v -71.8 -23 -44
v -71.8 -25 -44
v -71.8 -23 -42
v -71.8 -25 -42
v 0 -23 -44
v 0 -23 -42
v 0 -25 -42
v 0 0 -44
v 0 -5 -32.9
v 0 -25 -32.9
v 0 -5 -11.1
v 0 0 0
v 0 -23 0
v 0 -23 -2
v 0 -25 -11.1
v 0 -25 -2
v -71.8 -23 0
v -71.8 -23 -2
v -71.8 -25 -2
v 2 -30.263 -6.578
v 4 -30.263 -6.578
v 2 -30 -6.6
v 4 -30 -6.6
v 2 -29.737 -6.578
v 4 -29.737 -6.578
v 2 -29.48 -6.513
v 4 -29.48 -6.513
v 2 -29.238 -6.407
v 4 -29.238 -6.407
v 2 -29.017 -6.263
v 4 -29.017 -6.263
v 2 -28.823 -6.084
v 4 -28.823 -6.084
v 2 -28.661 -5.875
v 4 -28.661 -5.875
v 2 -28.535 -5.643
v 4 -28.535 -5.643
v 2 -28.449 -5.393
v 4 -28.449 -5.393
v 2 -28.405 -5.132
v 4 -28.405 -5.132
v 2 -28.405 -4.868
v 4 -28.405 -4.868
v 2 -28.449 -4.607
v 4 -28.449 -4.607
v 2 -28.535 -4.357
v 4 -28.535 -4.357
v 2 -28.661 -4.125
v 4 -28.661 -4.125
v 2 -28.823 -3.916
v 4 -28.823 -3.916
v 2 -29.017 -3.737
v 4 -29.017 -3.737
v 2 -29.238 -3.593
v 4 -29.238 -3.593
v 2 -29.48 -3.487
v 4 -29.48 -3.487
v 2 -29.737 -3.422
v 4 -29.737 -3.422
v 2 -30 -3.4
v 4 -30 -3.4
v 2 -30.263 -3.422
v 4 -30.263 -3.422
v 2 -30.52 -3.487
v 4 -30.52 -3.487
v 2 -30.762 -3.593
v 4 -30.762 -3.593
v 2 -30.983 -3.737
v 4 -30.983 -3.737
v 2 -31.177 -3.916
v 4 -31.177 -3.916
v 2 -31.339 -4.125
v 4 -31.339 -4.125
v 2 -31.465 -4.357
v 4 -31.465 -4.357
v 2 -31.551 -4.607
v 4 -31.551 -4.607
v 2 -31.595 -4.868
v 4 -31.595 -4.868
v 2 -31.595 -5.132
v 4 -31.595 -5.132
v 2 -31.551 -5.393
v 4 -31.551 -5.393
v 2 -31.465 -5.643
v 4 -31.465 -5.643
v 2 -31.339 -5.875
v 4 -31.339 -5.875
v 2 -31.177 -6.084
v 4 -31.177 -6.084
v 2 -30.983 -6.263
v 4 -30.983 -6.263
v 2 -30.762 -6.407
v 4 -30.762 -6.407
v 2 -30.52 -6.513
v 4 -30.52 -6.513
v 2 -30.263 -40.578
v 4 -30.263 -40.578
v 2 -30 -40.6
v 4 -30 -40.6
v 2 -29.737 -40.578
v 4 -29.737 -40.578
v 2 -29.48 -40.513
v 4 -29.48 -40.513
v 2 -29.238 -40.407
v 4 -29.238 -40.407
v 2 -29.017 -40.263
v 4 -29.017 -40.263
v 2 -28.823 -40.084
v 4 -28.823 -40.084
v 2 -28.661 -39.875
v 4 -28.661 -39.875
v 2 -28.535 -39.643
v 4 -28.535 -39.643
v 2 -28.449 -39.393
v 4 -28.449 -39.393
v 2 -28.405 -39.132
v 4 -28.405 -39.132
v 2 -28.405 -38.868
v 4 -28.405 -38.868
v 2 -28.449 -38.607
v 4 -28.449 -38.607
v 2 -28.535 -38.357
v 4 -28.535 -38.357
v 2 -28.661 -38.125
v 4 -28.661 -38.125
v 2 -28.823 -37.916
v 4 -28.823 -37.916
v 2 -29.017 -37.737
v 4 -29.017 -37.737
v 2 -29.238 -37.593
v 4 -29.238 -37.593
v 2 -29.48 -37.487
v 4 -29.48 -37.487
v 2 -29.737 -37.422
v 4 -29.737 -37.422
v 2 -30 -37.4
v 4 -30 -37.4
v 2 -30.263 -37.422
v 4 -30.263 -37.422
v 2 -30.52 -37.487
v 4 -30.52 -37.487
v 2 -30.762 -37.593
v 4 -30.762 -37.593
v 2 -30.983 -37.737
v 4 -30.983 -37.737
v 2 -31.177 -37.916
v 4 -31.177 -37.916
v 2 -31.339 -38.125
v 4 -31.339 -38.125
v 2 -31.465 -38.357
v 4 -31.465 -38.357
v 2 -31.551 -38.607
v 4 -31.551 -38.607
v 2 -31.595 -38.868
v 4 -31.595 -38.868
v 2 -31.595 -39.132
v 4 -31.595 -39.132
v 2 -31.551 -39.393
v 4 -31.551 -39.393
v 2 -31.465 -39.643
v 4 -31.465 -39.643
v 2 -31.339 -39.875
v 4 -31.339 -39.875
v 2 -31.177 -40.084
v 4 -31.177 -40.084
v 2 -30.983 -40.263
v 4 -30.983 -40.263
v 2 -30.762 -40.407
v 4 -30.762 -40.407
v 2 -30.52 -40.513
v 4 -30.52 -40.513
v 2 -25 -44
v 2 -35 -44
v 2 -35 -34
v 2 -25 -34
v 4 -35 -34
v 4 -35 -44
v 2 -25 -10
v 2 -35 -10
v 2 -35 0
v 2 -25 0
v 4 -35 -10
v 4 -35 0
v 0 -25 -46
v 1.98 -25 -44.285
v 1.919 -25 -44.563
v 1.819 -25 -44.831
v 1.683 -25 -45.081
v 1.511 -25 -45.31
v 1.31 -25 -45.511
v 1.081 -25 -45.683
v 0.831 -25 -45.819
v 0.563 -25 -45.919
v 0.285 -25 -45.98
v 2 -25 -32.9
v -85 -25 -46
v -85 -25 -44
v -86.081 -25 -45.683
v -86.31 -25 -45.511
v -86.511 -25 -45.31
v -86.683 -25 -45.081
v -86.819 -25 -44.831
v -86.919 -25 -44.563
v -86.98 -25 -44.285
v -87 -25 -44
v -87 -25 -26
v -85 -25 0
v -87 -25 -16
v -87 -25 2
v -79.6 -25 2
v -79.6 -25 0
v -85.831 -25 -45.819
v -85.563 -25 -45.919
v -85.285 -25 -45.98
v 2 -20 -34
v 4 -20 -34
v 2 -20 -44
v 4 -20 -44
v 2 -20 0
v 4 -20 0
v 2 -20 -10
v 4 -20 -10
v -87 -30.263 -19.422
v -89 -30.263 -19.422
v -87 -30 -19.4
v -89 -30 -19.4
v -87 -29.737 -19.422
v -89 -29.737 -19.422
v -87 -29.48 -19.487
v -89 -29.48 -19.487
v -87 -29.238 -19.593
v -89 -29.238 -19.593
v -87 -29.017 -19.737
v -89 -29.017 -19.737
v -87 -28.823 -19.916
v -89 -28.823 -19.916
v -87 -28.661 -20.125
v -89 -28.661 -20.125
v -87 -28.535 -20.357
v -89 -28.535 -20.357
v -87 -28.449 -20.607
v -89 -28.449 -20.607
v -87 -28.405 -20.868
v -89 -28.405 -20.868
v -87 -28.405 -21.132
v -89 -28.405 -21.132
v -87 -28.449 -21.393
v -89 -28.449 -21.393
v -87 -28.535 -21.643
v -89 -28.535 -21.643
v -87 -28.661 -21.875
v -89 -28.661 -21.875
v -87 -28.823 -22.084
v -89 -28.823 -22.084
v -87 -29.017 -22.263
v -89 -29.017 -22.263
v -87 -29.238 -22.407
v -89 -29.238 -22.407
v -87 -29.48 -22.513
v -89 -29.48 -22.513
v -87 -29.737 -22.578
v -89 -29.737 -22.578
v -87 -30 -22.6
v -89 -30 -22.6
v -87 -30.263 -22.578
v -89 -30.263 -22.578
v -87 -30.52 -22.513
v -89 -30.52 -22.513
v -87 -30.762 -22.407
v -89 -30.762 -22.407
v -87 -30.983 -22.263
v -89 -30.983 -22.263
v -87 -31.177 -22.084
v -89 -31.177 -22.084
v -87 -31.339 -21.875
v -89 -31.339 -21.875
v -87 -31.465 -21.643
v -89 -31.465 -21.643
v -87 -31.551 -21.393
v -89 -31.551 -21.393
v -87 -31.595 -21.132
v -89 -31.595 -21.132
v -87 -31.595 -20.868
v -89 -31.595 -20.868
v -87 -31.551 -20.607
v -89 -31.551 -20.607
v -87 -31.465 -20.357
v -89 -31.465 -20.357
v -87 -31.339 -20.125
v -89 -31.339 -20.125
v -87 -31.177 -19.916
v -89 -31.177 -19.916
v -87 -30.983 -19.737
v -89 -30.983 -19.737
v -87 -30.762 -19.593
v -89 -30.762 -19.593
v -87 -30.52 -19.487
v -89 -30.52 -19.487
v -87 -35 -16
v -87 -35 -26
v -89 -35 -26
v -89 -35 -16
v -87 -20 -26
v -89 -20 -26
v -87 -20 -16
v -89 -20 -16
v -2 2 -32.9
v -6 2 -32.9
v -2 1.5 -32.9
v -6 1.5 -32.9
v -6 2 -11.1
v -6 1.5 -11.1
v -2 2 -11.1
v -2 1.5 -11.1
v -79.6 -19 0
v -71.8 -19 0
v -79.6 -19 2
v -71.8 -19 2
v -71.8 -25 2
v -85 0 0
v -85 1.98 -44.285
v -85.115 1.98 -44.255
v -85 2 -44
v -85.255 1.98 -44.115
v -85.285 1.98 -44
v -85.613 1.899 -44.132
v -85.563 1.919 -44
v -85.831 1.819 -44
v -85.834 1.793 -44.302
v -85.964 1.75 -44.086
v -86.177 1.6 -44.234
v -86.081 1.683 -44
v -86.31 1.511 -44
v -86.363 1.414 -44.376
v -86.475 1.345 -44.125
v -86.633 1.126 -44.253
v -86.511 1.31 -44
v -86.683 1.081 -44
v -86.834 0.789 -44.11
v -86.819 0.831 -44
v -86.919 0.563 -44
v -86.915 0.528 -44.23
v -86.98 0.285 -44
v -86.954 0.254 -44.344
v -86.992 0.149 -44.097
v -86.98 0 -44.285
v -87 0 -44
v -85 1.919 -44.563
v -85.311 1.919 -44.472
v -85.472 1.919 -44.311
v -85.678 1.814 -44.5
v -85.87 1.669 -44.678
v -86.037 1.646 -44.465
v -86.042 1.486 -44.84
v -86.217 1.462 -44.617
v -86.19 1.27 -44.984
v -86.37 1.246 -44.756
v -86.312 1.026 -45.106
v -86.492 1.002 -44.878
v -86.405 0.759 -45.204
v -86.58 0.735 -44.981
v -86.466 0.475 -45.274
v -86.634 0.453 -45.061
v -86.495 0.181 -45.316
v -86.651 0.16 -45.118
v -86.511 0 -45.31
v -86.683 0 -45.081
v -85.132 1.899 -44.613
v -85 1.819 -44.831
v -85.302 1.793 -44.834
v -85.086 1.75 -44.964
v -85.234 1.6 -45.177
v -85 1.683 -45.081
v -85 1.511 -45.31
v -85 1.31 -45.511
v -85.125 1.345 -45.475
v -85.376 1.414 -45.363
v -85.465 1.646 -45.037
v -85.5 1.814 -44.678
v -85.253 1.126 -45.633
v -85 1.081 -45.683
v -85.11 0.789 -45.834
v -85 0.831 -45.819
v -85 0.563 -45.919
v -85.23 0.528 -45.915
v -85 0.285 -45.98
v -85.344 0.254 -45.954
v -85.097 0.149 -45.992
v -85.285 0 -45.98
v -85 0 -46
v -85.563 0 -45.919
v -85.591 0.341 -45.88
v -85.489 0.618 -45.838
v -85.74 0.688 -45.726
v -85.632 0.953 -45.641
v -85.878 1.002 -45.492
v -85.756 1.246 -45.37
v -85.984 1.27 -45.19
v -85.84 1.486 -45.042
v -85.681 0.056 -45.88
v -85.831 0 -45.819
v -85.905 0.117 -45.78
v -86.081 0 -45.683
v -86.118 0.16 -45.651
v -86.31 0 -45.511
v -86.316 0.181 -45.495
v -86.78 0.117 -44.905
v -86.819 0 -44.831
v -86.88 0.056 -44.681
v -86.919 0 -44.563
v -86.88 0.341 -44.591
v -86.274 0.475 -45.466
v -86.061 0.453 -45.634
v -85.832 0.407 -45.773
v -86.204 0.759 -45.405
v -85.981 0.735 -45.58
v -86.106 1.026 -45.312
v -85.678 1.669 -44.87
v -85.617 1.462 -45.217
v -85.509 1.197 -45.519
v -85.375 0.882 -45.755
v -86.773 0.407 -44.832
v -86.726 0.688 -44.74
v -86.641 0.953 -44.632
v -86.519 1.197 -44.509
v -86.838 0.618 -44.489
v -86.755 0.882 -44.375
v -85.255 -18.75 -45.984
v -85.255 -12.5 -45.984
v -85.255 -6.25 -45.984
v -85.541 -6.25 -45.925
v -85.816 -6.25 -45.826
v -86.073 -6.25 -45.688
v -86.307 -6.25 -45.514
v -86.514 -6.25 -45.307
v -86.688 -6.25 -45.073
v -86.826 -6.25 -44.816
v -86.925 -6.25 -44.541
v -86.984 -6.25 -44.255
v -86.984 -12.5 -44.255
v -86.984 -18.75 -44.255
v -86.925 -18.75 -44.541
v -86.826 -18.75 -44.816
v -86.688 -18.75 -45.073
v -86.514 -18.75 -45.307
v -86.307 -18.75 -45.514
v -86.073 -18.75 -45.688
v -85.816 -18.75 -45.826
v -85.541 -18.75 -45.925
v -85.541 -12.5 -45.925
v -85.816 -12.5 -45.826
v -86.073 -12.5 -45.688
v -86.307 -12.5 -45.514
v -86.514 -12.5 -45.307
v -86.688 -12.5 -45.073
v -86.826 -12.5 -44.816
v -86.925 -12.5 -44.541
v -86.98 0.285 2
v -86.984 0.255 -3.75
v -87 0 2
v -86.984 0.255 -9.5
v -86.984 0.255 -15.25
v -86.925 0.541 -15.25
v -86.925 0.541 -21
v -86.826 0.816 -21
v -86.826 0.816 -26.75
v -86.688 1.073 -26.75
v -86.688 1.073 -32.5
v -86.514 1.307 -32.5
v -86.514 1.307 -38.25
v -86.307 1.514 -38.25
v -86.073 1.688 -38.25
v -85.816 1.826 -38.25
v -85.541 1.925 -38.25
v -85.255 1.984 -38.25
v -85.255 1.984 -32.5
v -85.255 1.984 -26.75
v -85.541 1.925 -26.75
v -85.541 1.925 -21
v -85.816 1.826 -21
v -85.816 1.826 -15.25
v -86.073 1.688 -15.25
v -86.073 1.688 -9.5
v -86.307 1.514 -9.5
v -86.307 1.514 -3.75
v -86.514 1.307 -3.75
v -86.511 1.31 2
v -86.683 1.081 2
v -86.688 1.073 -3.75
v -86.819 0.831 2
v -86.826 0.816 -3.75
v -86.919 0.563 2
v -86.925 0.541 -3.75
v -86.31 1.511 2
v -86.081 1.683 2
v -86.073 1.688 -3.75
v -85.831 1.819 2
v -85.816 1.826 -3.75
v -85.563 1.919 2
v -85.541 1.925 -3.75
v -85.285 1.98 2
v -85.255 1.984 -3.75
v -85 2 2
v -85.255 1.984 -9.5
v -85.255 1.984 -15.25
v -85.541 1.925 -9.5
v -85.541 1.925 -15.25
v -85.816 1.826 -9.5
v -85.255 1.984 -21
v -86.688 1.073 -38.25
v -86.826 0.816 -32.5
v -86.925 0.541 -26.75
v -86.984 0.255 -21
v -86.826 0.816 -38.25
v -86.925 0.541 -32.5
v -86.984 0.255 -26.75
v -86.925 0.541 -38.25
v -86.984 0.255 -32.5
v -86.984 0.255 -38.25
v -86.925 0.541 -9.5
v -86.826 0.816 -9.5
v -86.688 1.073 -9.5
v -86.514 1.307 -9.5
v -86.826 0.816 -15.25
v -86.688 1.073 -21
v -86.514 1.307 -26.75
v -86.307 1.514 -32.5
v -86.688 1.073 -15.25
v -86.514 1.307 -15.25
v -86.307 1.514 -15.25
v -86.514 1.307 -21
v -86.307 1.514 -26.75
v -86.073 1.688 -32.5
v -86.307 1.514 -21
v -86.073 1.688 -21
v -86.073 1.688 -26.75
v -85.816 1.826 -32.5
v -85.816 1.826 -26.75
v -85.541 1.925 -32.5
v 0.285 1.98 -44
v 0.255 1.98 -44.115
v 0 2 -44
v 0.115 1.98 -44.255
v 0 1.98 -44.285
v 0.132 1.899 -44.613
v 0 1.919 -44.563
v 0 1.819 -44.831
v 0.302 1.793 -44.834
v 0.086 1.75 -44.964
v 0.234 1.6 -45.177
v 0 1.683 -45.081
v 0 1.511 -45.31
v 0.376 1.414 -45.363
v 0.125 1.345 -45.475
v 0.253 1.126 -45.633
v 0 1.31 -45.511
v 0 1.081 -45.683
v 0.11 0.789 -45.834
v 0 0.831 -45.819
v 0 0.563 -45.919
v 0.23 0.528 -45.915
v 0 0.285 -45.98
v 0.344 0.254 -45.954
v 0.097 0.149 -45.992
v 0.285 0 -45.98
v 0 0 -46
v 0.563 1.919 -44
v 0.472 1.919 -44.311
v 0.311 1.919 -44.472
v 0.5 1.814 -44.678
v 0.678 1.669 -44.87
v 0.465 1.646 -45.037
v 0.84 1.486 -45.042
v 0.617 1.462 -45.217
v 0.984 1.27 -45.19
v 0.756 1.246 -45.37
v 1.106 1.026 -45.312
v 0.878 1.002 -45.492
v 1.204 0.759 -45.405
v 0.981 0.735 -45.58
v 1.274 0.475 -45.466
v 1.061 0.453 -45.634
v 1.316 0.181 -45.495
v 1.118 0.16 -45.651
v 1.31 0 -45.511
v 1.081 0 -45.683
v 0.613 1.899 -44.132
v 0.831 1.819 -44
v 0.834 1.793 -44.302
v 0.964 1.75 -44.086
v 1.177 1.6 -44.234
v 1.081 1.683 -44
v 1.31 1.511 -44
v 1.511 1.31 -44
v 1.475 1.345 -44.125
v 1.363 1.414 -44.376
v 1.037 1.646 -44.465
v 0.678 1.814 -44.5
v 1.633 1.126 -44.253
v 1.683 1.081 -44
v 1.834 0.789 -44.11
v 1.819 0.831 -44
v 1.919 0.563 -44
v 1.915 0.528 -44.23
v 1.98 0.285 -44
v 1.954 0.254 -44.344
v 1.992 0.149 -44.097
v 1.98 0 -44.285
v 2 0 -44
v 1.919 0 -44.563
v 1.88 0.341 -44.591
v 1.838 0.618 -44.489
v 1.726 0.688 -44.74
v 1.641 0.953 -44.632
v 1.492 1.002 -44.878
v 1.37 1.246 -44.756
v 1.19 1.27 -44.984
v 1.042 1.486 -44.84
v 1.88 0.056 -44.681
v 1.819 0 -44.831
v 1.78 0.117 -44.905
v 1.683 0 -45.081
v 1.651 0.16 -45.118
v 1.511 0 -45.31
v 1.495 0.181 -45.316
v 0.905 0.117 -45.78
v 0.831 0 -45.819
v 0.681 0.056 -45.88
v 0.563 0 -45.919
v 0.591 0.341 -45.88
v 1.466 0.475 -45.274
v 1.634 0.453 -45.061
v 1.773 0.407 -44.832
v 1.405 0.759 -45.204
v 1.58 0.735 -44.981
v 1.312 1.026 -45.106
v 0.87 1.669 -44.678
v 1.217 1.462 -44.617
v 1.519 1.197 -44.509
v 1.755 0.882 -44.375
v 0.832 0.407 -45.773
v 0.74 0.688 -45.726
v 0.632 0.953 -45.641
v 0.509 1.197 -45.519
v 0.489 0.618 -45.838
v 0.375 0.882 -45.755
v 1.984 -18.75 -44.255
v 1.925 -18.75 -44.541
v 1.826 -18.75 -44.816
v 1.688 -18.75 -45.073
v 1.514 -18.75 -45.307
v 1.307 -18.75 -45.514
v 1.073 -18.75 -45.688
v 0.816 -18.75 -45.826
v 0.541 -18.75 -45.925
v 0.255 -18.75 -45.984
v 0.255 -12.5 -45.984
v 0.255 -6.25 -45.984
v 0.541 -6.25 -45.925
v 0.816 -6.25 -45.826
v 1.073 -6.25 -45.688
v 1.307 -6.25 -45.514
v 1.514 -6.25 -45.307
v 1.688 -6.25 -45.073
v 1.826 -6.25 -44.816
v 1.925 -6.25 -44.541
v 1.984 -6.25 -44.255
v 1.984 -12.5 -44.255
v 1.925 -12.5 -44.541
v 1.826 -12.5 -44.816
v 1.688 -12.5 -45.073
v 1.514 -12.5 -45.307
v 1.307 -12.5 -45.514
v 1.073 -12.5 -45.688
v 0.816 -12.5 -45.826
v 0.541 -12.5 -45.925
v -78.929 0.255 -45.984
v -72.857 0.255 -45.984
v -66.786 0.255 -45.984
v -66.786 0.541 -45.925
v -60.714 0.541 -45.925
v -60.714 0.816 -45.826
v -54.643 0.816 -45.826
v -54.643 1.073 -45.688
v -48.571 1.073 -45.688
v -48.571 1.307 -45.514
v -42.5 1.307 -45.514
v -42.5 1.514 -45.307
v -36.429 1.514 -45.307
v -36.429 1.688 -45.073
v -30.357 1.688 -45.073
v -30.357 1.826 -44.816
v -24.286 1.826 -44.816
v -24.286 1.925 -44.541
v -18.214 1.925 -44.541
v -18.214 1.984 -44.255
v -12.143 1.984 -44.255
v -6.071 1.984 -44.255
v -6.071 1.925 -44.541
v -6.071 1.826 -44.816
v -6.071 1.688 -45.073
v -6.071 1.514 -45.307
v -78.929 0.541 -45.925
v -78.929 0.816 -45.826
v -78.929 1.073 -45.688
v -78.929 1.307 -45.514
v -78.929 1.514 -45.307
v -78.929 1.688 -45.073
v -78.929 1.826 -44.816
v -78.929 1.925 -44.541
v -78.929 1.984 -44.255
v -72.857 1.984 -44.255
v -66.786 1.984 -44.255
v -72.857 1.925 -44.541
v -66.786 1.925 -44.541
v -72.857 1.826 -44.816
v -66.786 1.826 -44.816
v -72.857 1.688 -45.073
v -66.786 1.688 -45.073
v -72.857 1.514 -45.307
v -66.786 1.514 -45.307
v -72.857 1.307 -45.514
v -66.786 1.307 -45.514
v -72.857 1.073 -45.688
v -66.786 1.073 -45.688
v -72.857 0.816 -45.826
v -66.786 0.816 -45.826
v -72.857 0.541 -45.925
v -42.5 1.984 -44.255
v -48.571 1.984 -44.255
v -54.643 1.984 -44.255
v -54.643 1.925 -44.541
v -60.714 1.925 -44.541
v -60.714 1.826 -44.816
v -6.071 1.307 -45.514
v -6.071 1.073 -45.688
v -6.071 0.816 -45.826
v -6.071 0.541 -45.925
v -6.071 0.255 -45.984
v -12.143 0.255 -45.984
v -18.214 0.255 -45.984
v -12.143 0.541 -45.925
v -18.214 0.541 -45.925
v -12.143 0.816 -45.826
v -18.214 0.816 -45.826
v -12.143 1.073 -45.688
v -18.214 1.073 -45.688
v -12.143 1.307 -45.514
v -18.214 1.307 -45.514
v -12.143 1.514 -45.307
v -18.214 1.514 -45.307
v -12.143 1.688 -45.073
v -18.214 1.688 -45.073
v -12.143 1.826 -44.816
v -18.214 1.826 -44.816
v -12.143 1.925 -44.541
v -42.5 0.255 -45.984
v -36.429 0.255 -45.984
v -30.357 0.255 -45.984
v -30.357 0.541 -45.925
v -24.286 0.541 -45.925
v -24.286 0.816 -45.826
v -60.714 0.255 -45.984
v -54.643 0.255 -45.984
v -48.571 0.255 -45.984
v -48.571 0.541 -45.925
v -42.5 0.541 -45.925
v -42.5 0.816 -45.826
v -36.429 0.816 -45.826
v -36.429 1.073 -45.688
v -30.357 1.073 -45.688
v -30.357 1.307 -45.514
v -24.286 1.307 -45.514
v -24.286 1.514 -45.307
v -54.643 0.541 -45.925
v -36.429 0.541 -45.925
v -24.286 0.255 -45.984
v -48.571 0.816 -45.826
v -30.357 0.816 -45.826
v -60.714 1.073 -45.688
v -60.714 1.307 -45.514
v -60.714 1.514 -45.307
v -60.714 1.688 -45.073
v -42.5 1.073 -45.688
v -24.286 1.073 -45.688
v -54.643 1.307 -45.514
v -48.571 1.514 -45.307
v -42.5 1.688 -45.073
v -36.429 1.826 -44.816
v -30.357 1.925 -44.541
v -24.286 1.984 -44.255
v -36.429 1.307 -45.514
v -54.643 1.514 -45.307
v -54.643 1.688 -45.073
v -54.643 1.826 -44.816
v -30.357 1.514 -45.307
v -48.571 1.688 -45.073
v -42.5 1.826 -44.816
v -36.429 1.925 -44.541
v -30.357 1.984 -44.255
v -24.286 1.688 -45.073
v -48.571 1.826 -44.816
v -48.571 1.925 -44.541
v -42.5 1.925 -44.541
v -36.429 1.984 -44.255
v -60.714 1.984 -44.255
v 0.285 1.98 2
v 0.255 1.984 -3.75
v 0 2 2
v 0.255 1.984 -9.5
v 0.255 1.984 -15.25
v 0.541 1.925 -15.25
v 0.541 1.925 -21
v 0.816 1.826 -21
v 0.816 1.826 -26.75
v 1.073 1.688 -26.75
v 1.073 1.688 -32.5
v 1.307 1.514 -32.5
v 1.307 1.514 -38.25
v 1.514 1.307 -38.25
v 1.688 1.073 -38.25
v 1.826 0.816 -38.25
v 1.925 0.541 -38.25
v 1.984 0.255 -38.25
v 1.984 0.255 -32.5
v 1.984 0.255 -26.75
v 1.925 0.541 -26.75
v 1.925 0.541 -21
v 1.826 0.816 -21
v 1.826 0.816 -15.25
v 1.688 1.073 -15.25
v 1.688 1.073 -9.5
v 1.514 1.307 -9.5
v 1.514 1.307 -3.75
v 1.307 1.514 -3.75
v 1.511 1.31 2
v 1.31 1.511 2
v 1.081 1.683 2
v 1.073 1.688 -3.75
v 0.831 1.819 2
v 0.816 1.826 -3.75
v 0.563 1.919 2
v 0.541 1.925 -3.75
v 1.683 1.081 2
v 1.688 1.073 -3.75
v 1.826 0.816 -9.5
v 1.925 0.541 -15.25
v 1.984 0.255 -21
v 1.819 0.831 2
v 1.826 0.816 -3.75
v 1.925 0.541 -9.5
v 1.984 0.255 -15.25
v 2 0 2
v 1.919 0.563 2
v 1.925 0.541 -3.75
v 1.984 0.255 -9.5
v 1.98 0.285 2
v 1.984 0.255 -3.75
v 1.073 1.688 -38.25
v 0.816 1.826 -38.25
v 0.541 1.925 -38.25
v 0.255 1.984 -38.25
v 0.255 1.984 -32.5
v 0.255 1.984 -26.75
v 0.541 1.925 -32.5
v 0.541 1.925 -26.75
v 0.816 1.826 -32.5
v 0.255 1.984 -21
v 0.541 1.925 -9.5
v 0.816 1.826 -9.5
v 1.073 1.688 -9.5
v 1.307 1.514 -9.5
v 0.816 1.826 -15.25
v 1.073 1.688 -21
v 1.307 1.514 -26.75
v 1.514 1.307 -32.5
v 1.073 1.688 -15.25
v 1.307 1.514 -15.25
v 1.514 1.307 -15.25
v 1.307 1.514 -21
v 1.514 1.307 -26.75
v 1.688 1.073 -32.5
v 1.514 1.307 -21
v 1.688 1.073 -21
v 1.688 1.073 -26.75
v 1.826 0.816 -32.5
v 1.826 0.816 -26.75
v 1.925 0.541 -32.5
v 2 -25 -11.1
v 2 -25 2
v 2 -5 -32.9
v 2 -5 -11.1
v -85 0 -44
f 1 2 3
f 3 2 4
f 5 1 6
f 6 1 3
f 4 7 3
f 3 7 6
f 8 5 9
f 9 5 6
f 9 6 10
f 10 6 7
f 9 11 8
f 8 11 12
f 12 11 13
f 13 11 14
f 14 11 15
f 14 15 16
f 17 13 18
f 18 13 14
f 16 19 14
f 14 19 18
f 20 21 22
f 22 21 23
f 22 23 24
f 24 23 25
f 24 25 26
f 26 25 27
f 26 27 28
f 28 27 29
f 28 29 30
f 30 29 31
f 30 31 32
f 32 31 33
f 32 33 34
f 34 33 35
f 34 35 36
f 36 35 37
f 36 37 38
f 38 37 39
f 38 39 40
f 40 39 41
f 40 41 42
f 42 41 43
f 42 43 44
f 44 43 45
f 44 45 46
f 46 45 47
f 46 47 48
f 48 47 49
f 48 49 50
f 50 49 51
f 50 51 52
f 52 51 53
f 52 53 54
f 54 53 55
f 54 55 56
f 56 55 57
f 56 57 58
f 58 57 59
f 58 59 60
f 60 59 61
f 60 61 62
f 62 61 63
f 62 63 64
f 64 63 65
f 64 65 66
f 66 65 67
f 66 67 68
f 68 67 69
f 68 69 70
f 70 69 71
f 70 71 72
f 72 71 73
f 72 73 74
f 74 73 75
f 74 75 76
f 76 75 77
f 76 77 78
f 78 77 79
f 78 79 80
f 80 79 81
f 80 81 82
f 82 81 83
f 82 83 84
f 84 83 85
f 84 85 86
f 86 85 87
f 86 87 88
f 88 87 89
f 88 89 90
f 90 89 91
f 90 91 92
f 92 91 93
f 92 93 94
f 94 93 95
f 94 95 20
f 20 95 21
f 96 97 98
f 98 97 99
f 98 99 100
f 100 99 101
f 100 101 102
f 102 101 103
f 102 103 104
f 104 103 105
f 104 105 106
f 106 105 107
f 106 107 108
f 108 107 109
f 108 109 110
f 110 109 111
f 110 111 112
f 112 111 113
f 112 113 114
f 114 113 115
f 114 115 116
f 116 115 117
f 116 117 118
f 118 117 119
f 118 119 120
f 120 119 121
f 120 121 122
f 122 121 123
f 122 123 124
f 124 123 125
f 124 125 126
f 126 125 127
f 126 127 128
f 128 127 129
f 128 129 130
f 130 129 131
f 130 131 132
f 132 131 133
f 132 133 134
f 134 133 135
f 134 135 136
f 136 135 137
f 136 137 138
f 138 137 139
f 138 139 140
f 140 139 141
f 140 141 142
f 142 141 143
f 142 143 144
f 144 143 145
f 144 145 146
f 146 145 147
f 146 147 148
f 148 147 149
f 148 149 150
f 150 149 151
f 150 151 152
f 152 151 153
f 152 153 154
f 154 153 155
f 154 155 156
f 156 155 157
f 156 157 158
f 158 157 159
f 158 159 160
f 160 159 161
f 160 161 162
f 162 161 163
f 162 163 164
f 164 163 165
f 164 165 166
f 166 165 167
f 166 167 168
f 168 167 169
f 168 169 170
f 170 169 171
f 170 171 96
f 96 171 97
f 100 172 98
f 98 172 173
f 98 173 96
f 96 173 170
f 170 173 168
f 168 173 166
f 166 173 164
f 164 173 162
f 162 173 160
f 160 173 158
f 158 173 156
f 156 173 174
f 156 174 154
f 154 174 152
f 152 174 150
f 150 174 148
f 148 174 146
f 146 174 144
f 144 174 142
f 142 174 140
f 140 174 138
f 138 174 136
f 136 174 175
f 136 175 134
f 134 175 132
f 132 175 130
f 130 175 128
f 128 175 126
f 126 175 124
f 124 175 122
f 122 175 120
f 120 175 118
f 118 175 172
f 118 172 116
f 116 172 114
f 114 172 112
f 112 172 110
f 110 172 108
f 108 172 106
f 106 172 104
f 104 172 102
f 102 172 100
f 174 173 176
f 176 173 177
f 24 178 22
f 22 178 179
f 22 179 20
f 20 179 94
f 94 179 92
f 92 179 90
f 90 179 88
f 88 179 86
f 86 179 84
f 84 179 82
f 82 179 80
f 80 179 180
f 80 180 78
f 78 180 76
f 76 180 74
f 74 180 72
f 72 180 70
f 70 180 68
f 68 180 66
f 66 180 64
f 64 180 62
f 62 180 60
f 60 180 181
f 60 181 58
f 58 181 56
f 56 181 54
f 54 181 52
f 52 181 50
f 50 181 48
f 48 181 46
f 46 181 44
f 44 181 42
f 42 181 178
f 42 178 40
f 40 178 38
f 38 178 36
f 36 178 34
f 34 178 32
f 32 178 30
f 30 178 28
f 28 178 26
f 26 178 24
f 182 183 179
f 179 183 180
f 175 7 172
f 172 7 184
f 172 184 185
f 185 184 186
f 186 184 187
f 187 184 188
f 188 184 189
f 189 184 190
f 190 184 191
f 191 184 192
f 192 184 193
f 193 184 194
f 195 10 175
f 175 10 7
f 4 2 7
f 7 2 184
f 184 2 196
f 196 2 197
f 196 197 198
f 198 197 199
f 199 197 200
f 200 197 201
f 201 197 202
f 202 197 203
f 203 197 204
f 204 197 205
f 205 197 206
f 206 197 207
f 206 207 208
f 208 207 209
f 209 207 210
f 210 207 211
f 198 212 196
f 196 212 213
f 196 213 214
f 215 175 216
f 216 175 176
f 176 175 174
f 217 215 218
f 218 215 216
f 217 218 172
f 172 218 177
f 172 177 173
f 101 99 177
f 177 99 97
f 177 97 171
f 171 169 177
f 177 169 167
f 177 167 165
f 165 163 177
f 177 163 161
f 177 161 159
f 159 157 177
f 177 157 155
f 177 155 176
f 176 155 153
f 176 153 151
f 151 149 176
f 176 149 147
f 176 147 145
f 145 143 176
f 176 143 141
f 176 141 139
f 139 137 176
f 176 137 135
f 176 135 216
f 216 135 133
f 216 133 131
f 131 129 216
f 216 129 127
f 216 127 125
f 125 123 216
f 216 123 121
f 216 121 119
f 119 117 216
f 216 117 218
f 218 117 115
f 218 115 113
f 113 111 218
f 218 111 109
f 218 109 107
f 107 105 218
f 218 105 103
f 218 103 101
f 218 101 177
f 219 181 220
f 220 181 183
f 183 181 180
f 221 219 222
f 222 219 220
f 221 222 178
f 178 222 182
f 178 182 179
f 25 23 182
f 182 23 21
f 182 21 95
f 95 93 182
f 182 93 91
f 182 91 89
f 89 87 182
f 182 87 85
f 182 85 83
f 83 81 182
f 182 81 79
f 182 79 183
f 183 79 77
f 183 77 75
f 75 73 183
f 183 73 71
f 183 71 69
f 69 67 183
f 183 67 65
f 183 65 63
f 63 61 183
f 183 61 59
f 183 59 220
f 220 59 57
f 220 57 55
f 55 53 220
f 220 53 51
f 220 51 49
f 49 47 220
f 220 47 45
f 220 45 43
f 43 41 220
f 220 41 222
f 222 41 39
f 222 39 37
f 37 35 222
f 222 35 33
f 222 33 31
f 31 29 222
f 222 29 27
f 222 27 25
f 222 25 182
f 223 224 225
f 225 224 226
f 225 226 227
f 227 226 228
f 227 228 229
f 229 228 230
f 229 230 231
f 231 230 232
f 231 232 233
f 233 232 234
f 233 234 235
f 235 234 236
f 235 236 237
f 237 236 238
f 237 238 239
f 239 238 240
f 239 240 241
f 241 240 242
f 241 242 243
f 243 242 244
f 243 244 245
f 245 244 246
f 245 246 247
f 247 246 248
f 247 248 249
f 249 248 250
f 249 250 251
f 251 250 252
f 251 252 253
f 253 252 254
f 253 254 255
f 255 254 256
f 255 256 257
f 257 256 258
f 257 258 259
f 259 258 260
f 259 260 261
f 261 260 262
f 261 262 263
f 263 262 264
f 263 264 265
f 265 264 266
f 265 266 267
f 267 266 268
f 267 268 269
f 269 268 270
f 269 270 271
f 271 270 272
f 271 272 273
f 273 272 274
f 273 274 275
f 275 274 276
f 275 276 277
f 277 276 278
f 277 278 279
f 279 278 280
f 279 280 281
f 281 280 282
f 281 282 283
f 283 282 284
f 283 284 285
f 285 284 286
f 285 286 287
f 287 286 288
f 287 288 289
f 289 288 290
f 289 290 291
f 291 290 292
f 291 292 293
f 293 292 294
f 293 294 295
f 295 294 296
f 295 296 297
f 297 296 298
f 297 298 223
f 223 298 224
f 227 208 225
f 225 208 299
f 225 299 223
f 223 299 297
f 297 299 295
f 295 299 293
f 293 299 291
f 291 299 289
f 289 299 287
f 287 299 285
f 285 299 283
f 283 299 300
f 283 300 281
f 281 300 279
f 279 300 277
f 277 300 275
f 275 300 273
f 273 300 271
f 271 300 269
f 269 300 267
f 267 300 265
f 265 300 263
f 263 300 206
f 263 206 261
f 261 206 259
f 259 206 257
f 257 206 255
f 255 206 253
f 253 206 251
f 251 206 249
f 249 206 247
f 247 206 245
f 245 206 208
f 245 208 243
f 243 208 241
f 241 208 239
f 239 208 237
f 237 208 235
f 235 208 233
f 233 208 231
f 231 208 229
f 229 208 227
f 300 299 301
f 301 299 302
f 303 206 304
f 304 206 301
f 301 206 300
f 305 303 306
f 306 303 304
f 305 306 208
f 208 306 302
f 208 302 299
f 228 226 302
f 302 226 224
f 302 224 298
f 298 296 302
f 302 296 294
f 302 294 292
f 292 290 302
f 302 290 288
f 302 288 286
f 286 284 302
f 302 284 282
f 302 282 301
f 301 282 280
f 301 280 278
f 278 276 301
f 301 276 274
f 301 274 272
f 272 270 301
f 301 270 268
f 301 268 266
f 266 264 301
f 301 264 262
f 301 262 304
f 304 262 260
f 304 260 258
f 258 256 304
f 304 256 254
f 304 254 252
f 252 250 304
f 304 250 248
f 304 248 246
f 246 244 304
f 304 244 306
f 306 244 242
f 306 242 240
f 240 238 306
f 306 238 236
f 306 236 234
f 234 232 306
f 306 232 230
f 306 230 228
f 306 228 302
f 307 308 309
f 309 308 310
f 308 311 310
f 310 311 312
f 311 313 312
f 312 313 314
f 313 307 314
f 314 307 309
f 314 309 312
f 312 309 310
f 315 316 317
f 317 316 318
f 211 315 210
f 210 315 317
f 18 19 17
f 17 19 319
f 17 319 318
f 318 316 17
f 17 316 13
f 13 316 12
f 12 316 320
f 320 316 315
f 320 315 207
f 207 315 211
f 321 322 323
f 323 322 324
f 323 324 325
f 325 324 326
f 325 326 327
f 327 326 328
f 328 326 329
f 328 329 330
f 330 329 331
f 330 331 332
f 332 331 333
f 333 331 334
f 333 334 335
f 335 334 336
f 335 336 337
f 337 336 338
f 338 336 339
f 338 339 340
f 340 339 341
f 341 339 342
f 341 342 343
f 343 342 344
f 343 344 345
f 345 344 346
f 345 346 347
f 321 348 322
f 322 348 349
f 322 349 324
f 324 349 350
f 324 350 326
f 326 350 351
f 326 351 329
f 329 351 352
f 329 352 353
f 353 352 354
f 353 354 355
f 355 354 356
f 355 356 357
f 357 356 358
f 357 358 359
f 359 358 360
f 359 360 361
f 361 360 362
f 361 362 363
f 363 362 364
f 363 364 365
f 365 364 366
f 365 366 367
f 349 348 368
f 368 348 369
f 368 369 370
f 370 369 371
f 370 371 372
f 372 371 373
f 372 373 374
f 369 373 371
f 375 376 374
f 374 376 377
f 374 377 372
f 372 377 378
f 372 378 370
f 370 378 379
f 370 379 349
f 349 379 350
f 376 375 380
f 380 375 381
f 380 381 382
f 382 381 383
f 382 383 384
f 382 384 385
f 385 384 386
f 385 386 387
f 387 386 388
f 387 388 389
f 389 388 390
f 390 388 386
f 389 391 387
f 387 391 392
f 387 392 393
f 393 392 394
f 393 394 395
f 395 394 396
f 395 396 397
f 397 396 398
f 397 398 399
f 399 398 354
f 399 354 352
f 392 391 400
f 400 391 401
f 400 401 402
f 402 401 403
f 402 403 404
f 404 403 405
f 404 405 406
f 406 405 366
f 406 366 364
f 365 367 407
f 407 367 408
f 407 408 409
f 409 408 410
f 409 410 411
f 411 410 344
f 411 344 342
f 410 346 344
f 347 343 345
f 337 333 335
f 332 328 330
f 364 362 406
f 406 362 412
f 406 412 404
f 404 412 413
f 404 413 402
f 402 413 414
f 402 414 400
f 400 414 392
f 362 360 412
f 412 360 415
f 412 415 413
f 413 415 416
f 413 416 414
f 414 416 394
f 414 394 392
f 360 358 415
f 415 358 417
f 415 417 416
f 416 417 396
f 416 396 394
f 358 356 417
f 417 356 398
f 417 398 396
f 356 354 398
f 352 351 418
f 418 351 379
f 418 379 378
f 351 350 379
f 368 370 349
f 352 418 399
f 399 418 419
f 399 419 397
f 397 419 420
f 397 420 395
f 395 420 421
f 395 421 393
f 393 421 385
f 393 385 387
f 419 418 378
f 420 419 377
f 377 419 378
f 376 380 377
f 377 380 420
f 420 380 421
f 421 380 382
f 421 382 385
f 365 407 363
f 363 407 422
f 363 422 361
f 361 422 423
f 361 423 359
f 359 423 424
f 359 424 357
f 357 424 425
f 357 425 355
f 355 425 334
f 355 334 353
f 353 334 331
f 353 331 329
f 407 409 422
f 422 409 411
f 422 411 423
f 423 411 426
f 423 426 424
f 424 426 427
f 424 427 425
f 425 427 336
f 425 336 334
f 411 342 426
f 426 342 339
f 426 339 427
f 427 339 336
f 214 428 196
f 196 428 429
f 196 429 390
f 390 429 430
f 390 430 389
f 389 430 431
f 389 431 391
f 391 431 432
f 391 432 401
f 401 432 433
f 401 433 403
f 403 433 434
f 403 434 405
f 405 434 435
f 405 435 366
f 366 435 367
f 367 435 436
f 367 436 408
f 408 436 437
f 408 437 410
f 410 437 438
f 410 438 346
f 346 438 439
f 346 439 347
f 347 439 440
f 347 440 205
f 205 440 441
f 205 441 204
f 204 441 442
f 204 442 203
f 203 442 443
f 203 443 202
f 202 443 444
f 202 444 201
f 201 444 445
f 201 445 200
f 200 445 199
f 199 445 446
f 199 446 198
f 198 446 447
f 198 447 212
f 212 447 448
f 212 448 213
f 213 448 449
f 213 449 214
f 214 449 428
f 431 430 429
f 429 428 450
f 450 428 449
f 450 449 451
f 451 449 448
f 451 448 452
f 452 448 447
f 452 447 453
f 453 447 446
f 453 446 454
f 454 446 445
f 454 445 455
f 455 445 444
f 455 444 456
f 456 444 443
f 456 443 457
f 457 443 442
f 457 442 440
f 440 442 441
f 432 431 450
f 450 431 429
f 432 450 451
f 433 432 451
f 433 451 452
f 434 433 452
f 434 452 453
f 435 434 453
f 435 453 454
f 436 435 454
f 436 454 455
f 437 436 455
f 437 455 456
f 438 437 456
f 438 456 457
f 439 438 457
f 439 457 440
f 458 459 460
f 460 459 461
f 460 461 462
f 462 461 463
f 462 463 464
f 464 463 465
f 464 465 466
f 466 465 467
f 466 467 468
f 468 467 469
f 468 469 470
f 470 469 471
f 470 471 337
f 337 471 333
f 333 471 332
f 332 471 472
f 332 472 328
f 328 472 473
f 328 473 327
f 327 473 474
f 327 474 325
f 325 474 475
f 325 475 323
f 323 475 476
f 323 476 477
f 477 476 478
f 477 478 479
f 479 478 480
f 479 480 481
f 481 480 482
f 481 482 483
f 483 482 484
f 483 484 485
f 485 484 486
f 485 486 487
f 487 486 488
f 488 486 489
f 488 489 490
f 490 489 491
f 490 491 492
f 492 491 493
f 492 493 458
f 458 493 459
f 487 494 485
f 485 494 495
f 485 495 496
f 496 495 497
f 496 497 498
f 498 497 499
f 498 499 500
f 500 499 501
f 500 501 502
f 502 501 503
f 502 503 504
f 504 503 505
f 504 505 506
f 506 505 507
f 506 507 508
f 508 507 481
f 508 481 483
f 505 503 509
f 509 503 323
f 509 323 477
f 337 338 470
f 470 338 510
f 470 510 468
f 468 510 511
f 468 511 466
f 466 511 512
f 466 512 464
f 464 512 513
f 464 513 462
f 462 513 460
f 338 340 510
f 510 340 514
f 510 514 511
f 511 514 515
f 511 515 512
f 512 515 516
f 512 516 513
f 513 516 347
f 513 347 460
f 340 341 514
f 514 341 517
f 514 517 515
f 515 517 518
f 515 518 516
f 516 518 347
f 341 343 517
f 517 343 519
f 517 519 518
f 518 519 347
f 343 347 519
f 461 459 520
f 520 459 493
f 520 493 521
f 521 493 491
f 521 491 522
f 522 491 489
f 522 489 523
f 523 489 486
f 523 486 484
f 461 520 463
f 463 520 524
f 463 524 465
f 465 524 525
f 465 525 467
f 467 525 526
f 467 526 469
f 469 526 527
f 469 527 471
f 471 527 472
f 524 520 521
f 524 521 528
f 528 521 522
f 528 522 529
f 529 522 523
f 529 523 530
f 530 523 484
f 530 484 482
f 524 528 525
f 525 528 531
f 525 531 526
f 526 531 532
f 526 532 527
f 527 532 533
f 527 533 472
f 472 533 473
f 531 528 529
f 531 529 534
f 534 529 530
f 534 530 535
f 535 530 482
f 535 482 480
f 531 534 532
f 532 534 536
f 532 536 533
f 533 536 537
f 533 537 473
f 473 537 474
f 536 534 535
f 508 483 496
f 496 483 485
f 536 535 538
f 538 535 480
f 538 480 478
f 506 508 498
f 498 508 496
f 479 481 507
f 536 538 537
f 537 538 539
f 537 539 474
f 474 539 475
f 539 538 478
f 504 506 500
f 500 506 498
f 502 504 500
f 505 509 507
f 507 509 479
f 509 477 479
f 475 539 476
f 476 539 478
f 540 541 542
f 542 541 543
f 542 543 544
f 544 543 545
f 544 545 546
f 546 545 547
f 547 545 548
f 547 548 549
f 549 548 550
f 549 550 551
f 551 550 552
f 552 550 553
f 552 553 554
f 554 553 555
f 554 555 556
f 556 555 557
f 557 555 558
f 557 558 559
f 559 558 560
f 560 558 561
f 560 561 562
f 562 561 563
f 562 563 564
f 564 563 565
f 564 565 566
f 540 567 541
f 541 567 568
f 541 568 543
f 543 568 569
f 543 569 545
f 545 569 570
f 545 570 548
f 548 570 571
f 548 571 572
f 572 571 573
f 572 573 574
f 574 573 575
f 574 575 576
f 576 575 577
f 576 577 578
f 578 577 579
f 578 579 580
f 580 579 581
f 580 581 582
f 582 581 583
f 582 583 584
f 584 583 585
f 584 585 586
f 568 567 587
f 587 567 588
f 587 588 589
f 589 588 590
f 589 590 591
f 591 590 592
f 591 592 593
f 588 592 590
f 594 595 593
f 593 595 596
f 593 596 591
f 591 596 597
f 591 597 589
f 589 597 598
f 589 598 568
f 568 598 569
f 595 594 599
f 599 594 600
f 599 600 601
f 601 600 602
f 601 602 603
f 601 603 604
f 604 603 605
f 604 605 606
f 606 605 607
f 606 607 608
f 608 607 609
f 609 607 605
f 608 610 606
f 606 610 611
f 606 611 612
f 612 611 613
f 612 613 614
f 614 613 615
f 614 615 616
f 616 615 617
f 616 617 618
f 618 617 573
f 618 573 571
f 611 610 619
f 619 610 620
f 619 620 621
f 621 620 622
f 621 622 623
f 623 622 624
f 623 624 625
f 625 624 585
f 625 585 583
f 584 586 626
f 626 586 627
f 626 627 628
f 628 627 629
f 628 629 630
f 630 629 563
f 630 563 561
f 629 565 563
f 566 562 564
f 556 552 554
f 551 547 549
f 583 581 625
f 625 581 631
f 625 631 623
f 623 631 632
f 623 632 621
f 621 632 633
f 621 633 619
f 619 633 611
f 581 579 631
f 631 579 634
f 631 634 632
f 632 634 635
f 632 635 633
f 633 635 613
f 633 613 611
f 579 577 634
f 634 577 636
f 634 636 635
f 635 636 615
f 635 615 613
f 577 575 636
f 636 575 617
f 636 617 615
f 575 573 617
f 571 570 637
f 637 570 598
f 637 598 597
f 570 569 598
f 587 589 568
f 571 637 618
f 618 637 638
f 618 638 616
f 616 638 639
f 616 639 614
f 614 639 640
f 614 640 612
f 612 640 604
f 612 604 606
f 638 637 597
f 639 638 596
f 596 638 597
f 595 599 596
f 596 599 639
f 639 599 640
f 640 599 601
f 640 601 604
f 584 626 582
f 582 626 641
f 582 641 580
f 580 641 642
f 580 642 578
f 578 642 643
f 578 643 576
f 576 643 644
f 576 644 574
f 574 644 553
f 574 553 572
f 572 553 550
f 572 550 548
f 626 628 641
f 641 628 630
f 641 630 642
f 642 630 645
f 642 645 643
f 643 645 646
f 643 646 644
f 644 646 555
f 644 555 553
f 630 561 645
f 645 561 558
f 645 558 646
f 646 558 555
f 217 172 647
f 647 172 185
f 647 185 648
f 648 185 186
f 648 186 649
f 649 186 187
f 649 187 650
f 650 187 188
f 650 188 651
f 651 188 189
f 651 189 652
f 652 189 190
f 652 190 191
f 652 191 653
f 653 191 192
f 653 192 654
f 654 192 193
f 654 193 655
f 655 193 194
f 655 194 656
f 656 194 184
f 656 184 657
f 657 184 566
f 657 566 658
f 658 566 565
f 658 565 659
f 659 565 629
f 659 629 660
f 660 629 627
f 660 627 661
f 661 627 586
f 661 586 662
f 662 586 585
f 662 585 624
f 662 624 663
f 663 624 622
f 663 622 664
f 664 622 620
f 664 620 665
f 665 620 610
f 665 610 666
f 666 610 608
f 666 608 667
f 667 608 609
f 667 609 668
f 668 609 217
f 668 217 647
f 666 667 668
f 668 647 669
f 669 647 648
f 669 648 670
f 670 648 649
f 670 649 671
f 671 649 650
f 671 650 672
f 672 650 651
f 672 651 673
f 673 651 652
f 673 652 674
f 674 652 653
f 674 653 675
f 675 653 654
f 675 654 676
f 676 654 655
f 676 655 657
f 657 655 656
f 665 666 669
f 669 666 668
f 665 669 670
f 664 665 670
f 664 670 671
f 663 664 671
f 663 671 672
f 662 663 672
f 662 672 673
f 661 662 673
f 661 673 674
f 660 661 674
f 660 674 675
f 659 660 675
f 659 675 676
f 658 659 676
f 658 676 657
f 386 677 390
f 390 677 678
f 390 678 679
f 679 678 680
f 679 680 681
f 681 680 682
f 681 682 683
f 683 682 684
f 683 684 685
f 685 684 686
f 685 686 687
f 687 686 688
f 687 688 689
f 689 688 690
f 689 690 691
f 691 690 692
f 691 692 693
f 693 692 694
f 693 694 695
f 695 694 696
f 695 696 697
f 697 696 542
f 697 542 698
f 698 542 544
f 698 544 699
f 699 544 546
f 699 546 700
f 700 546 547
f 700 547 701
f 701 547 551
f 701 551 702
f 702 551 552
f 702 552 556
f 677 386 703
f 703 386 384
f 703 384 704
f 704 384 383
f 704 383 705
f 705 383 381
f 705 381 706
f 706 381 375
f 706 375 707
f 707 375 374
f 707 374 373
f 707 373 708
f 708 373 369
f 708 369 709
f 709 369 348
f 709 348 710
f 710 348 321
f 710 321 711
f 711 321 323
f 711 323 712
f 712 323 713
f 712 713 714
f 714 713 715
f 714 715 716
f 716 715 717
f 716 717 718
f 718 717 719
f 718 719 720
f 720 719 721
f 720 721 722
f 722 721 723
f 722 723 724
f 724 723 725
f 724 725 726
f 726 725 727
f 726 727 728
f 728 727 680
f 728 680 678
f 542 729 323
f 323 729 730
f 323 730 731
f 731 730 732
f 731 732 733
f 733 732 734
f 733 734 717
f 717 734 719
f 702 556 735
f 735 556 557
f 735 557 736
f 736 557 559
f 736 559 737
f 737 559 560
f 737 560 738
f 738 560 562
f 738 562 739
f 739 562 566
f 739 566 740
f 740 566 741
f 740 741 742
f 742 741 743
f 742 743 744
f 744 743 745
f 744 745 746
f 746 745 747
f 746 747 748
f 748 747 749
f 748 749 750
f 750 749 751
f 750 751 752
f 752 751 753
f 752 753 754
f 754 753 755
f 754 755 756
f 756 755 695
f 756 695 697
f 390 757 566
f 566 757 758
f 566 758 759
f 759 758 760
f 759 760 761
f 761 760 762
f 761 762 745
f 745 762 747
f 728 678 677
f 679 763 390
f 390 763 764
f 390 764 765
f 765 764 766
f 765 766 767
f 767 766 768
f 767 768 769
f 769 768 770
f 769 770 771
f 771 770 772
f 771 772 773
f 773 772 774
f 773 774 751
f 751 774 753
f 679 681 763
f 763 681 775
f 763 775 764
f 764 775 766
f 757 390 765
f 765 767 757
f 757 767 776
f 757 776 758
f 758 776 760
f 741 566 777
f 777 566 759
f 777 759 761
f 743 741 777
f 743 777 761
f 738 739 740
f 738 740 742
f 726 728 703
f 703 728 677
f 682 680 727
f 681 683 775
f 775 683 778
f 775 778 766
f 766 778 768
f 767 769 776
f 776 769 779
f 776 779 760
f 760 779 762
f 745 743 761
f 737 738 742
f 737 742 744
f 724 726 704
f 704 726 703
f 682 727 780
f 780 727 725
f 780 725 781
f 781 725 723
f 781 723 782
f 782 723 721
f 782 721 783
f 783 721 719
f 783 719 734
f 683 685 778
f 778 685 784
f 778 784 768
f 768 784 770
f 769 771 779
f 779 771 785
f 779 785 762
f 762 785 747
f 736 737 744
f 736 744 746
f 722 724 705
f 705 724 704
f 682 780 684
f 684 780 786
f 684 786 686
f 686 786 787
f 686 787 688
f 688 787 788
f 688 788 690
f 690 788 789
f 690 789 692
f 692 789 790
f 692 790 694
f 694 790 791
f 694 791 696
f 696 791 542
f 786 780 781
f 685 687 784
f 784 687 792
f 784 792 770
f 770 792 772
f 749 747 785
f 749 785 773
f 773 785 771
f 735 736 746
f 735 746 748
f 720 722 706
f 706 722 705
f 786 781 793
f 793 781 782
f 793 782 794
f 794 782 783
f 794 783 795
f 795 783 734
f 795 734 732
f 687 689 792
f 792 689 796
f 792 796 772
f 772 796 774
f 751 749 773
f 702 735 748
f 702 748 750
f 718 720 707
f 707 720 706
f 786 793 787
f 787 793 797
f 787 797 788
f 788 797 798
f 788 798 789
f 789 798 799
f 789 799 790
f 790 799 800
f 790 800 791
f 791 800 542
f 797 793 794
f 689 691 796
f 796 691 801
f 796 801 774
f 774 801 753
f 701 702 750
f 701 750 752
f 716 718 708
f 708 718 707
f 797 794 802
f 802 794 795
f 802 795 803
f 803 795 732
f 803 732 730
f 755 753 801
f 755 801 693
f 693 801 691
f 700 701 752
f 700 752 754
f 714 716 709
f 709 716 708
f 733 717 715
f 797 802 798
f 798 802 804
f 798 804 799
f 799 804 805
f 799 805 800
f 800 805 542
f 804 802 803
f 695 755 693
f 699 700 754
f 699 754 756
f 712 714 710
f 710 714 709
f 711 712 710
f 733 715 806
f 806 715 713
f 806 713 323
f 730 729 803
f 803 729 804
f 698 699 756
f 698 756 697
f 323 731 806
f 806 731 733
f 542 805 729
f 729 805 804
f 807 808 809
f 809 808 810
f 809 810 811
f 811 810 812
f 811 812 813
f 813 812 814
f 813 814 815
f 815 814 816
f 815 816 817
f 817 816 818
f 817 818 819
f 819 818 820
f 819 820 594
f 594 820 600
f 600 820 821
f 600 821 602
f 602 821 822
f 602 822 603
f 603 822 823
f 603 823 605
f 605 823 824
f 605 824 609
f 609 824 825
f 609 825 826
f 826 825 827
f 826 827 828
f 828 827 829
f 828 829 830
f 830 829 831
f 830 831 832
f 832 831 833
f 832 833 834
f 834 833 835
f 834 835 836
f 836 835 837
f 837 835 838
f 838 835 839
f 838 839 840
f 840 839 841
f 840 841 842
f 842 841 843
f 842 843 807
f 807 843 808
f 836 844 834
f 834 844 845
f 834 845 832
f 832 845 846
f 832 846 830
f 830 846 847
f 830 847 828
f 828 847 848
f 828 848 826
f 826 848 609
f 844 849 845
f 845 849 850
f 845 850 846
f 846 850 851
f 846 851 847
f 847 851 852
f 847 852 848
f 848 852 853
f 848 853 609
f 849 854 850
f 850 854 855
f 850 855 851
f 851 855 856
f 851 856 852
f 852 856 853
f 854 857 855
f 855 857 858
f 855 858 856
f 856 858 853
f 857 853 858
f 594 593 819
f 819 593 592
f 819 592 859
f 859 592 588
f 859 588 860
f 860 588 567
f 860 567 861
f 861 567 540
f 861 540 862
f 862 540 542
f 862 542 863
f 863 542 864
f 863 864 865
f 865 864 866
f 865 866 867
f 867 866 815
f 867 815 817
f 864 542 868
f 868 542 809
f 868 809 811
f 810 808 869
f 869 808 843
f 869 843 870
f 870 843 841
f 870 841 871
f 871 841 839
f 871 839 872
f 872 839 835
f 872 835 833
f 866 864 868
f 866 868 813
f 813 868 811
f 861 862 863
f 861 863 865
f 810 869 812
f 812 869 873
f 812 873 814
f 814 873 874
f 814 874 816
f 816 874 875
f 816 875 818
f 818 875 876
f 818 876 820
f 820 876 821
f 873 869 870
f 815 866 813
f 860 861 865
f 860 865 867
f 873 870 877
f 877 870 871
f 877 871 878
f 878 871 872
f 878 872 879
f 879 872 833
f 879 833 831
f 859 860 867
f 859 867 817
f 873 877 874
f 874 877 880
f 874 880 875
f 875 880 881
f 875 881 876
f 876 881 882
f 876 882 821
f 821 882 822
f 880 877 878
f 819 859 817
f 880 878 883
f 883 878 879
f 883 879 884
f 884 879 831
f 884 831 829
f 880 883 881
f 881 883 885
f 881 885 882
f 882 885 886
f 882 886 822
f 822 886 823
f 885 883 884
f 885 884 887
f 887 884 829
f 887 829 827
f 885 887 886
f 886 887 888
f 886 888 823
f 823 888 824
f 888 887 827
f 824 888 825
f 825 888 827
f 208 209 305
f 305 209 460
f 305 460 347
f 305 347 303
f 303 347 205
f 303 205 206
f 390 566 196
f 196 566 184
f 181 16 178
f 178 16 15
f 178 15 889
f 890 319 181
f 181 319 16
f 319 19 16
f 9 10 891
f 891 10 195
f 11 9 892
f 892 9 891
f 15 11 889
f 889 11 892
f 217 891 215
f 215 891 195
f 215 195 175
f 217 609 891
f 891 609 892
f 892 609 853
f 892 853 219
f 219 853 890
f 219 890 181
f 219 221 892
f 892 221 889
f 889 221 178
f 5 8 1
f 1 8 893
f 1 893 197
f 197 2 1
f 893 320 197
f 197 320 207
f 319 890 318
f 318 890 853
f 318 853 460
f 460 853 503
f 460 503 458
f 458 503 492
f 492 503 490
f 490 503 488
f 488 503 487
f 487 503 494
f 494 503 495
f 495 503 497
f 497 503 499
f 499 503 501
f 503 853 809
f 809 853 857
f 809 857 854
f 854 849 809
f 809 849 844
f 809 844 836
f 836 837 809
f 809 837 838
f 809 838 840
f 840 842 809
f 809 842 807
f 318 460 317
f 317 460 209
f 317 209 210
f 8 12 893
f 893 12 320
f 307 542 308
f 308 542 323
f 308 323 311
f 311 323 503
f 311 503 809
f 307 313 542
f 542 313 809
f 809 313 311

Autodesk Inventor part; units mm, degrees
ref_plane "YZ Plane" through (0, 0, 0) normal (1, 0, 0) x (0, 1, 0)
ref_plane "XZ Plane" through (0, 0, 0) normal (0, 1, 0) x (-1, 0, 0)
ref_plane "XY Plane" through (0, 0, 0) normal (0, 0, 1) x (1, 0, 0)
sketch "Sketch1" plane through (0, 0, 0) normal (0, 1, 0) x (-1, 0, 0)
  line L0 (0, 0) -> (0, -44)
  line L1 (0, -44) -> (85, -44)
  line L2 (85, -44) -> (85, 0)
  line L3 (85, 0) -> (0, 0)
  line L4 (0, -46) -> (-2, -46)
  line L5 (-2, -46) -> (-2, 0)
  line L6 (-2, 0) -> (-2, 2)
  line L7 (-2, 2) -> (85, 2)
  line L8 (85, 2) -> (87, 2)
  line L9 (87, 2) -> (87, -46)
  line L10 (87, -46) -> (0, -46)
  dimension "d0" = 44
  dimension "d2" = 2
  dimension "d3" = 2
  dimension "d4" = 2
  dimension "d5" = 2
extrude "Extrusion1" add sketch "Sketch1" along normal blind 2 contours L3 L2 L1 L0 | L4 L5 L6 L7 L8 L9 L10
extrude "Extrusion2" add sketch "Sketch1" against normal blind 25
sketch "Sketch2" plane through (2, 2, 2) normal (1, 0, 0) x (0, 0, -1)
  point P0 (2, -2)
sketch "Sketch3" plane through (2, 2, 2) normal (1, 0, 0) x (0, 0, -1)
  line L0 (0, -27) -> (13.1, -27)
  line L1 (46, -27) -> (2, -27) projected
  line L2 (0, -27) -> (48, -27) projected
  line L3 (48, -27) -> (34.9, -27)
  line L4 (34.9, -27) -> (34.9, -7)
  line L5 (34.9, -7) -> (13.1, -7)
  line L6 (13.1, -7) -> (13.1, -27)
  line L7 (13.1, -27) -> (34.9, -27)
  point P0 (2, -2)
  dimension "d10" = 13.1
  dimension "d11" = 13.1
  dimension "d12" = 20
extrude "Extrusion3" cut sketch "Sketch3" against normal blind 25
fillet "Fillet1" radius 2 5 edges at (-42.5, 2, -46) (2, -11.5, -46) (2, 2, -22) (-87, 2, -22) (-87, -11.5, -46)
sketch "Sketch4" plane through (-87, -25, 2) normal (0, 0, 1) x (1, 0, 0)
  line L0 (2, 0) -> (0, 0) projected
  line L1 (0, 0) -> (7.4, 0)
  line L2 (87, 0) -> (2, 0) projected
  line L3 (7.4, 0) -> (15.2, 0)
  line L4 (15.2, 0) -> (15.2, 6)
  line L5 (15.2, 6) -> (7.4, 6)
  line L6 (7.4, 6) -> (7.4, 0)
  point P0 (87, 25)
  dimension "d16" = 7.4
  dimension "d17" = 7.8
  dimension "d18" = 6
extrude "Extrusion4" cut sketch "Sketch4" against normal blind 25
sketch "Sketch5" plane through (0, 2, 0) normal (0, 1, 0) x (1, 0, 0)
  line L0 (2, 32.9) -> (0, 32.9) projected
  line L1 (0, 11.1) -> (2, 11.1) projected
  line L2 (0, 32.9) -> (0, 11.1)
  line L3 (0, 11.1) -> (-2, 11.1)
  line L4 (-2, 11.1) -> (-6, 11.1)
  line L5 (-6, 11.1) -> (-6, 32.9)
  line L6 (-6, 32.9) -> (-2, 32.9)
  line L7 (-2, 32.9) -> (-2, 11.1)
  point P0 (0, 0)
  dimension "d21" = 2
  dimension "d22" = 4
  dimension "d23" = 4
extrude "Extrusion5" cut sketch "Sketch5" against normal blind 0.5
sketch "Sketch6" plane through (-87, -25, -44) normal (-1, 0, 0) x (0, 0, 1)
  line L0 (46, 25) -> (0, 25) projected
  line L1 (23, 25) -> (23, 0)
  line L2 (46, 0) -> (0, 0) projected
  line L3 (23, 0) -> (28, 0)
  line L4 (28, 0) -> (28, 5)
  line L5 (28, 5) -> (18, 5)
  line L6 (18, 5) -> (18, 0)
  line L7 (23, 0) -> (18, 0)
  point P0 (44, 25)
  dimension "d26" = 5
  dimension "d27" = 5
  dimension "d28" = 10
extrude "Extrusion6" add sketch "Sketch6" along normal blind 2
sketch "Sketch7" plane through (0, -25, 0) normal (0, -1, 0) x (1, 0, 0)
  line L0 (-87, -44) -> (-87, 2) projected
  line L1 (-87, -26) -> (-89, -26) projected
  line L2 (-87, -15.9645) -> (-87, -26)
  line L3 (-87, -26) -> (-89, -26)
  line L4 (-89, -26) -> (-89, -16) projected
  line L5 (-89, -26) -> (-89, -16)
  line L6 (-87, -16) -> (-89, -16) projected
  line L7 (-89, -16) -> (-87, -16)
  point P0 (0, 0)
extrude "Extrusion7" add sketch "Sketch7" along normal blind 10
sketch "Sketch8" plane through (-89, -25, -44) normal (-1, 0, 0) x (0, 0, 1)
  line L0 (28, 0) -> (18, 0) projected
  line L1 (18, 0) -> (23, 0)
  line L2 (23, 0) -> (23, -5)
  circle A0 centre (23, -5) radius 1.6
  point P0 (44, 25)
  dimension "d33" = 5
  dimension "d34" = 3.2
extrude "Extrusion8" cut sketch "Sketch8" against normal blind 10
sketch "Sketch9" plane through (2, -25, -11.1) normal (1, 0, 0) x (0, 0, -1)
  line L0 (-13.1, 0) -> (4.9, 0) projected
  line L1 (-13.1, 0) -> (-11.1, 0)
  line L2 (-11.1, 0) -> (-11.1, 5)
  line L3 (-11.1, 6) -> (-11.1, 0) projected
  line L4 (-11.1, 5) -> (-1.1, 5)
  line L5 (-1.1, 5) -> (-1.1, 0)
  line L6 (-1.1, 0) -> (-11.1, 0)
  line L7 (32.9, 0) -> (-11.1, 0) projected
  line L8 (32.9, 0) -> (32.9, 5)
  line L9 (32.9, 0) -> (32.9, 25) projected
  line L10 (32.9, 5) -> (22.9, 5)
  line L11 (22.9, 5) -> (22.9, 0)
  line L12 (22.9, 0) -> (32.9, 0)
  point P0 (-11.1, 25)
  dimension "d37" = 2
  dimension "d38" = 5
  dimension "d39" = 10
  dimension "d40" = 5
  dimension "d41" = 10
extrude "Extrusion9" add sketch "Sketch9" along normal blind 2
sketch "Sketch10" plane through (0, -25, 0) normal (0, -1, 0) x (1, 0, 0)
  line L0 (4, -10) -> (4, 0) projected
  line L1 (2, -10) -> (4, -10) projected
  line L2 (4, -10) -> (2, -10)
  line L3 (2, 0) -> (2, -10) projected
  line L4 (2, -10) -> (2, 0)
  line L5 (2, 0) -> (4, 0)
  line L6 (4, 0) -> (4, -10)
  line L7 (4, -44) -> (4, -34) projected
  line L8 (4, -34) -> (4, -44)
  line L9 (2, -44) -> (4, -44) projected
  line L10 (4, -44) -> (2, -44)
  line L11 (2, -44) -> (2, -34)
  line L12 (2, 2) -> (2, -44) projected
  line L13 (4, -34) -> (2, -34)
  point P0 (0, 0)
extrude "Extrusion10" add sketch "Sketch10" along normal blind 10
sketch "Sketch11" plane through (4, -25, -11.1) normal (1, 0, 0) x (0, 0, -1)
  line L0 (-1.1, -10) -> (-11.1, -10) projected
  line L1 (-6.1, -10) -> (-6.1, -5)
  line L2 (22.9, -10) -> (32.9, -10) projected
  line L3 (27.9, -10) -> (27.9, -5)
  circle A0 centre (-6.1, -5) radius 1.6
  circle A1 centre (27.9, -5) radius 1.6
  point P0 (-11.1, 25)
  dimension "d46" = 5
  dimension "d47" = 5
  dimension "d48" = 3.2
  dimension "d49" = 3.2
extrude "Extrusion11" cut sketch "Sketch11" against normal blind 10
sketch "Sketch12" plane through (0, 0, 0) normal (0, 0, -1) x (-1, 0, 0)
  line L0 (0, -5) -> (0, -25) projected
  line L1 (71.8, -19) -> (71.8, -25) projected
  line L2 (0, -25) -> (71.8, -25)
  line L3 (71.8, -25) -> (71.8, -23)
  line L4 (71.8, -23) -> (0, -23)
  line L5 (0, -23) -> (0, -25)
  point P0 (0, 0)
  dimension "d52" = 2
extrude "Extrusion12" add sketch "Sketch12" along normal blind 2
sketch "Sketch13" plane through (-85, 0, -44) normal (0, 0, 1) x (1, 0, 0)
  line L0 (87, -25) -> (13.2, -25) projected
  line L1 (13.2, -23) -> (85, -23) projected
  line L2 (13.2, -25) -> (13.2, -23)
  line L3 (13.2, -23) -> (85, -23)
  line L4 (85, -5) -> (85, -25) projected
  line L5 (85, -23) -> (85, -25)
  line L6 (85, -25) -> (13.2, -25)
  point P0 (85, 0)
extrude "Extrusion13" add sketch "Sketch13" along normal blind 2
properties part number "sideboard_top"
